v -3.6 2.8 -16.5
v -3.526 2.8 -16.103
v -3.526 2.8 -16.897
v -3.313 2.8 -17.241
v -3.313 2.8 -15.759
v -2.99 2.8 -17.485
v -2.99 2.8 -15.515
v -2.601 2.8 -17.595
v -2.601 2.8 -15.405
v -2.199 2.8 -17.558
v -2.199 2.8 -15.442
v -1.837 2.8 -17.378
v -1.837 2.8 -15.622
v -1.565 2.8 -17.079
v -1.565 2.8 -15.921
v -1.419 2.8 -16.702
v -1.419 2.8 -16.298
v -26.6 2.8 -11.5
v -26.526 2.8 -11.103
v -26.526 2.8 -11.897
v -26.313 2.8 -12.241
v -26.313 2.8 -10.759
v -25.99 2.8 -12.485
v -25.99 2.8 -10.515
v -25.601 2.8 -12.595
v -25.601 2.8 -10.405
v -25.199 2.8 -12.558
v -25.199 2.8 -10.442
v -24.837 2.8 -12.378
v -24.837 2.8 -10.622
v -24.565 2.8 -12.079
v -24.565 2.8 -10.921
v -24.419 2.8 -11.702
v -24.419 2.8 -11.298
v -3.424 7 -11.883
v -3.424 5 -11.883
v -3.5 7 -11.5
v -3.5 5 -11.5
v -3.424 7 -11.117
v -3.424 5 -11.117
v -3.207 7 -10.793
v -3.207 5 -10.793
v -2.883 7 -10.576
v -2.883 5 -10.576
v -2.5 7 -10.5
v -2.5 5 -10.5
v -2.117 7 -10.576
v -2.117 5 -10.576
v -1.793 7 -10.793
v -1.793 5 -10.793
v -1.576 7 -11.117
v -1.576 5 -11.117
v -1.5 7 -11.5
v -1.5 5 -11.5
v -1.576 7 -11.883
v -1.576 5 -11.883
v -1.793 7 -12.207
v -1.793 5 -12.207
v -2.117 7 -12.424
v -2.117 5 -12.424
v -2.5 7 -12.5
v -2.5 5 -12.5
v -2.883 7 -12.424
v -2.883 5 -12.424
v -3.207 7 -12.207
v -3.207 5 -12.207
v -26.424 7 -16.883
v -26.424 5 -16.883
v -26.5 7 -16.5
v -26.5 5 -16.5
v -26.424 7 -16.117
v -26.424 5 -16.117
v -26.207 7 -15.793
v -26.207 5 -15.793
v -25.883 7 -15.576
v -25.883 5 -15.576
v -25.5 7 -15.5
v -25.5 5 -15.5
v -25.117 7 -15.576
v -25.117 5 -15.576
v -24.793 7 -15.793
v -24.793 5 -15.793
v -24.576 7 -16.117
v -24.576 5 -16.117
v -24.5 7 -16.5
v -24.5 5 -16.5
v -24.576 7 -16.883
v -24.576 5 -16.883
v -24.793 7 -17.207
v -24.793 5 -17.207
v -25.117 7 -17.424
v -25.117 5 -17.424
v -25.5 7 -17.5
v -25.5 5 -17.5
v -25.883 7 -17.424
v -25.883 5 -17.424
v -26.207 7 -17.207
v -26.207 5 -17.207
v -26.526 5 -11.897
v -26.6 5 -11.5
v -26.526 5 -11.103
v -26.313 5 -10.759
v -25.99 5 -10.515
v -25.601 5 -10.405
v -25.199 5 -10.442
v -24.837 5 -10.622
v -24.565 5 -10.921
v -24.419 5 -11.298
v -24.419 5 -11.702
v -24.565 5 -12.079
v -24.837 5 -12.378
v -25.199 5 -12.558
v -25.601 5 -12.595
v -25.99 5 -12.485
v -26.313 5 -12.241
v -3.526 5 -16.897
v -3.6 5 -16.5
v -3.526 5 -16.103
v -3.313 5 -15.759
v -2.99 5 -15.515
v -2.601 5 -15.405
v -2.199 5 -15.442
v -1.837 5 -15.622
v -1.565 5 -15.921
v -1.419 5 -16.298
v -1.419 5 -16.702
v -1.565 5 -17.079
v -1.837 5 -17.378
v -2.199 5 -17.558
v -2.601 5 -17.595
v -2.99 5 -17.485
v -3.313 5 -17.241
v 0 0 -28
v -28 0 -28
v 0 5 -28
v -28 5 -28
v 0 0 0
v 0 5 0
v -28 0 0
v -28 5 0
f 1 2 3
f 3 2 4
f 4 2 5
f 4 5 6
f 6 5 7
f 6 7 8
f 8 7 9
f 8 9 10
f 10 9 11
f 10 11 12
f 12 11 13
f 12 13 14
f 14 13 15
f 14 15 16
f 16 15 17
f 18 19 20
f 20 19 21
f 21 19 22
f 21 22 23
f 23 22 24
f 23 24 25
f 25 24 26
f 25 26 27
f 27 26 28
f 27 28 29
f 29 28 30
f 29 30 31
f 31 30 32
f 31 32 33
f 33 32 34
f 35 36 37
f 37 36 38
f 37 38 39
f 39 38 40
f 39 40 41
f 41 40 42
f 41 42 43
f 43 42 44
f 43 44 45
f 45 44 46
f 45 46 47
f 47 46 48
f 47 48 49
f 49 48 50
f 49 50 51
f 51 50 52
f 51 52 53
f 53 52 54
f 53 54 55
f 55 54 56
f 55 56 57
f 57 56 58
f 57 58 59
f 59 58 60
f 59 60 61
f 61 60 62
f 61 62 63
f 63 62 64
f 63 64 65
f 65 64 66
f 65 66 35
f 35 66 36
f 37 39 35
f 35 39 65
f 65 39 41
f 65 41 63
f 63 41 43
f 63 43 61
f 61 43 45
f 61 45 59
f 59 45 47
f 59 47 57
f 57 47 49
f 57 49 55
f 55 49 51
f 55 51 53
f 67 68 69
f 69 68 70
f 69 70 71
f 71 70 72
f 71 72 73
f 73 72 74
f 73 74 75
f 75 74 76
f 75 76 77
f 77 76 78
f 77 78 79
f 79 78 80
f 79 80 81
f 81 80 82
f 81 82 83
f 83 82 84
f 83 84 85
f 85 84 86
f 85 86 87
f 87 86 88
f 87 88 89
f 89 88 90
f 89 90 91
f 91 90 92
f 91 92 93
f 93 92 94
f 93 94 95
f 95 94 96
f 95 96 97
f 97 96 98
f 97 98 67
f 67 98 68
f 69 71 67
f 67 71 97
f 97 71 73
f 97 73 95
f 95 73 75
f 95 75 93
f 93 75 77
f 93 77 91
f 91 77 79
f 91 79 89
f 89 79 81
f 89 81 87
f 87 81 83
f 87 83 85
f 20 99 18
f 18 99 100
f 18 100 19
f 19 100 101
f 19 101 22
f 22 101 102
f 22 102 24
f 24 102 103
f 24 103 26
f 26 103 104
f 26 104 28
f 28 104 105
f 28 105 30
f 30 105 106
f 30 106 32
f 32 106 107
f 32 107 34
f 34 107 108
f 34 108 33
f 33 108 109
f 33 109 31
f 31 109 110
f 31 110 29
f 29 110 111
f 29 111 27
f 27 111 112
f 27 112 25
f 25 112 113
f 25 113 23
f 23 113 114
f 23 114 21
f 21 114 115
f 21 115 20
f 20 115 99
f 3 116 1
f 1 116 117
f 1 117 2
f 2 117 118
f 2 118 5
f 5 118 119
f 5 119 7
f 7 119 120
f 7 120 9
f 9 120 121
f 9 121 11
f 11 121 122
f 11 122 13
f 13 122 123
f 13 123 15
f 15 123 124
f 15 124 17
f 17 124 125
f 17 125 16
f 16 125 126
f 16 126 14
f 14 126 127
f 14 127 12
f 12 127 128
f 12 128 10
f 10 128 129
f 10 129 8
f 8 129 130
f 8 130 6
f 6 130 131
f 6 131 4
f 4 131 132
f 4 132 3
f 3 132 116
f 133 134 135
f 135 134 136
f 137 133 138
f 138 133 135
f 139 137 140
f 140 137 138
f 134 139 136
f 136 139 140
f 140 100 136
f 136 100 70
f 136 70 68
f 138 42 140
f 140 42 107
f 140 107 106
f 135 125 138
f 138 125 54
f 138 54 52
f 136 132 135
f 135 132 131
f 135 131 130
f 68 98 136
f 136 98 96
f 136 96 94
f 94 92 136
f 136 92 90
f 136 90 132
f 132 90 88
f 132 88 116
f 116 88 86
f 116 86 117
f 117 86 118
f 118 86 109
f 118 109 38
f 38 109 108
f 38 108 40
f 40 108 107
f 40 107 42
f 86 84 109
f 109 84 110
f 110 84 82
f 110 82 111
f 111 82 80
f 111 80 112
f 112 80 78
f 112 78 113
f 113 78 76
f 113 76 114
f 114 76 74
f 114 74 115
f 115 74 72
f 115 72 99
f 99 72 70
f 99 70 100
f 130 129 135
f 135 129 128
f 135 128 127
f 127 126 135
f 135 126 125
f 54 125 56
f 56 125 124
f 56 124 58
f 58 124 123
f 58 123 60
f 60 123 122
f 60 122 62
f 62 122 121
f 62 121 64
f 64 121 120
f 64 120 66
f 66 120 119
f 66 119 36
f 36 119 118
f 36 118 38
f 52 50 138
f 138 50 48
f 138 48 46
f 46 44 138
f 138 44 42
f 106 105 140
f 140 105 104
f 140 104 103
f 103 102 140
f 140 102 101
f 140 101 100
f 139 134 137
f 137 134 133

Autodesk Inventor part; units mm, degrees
ref_plane "YZ Plane" through (0, 0, 0) normal (1, 0, 0) x (0, 1, 0)
ref_plane "XZ Plane" through (0, 0, 0) normal (0, 1, 0) x (-1, 0, 0)
ref_plane "XY Plane" through (0, 0, 0) normal (0, 0, 1) x (1, 0, 0)
sketch "Sketch1" plane through (0, 0, 0) normal (0, 1, 0) x (-1, 0, 0)
  line L0 (0, -28) -> (28, -28)
  line L1 (28, 0) -> (0, 0)
  line L2 (0, 0) -> (28, 0) construction
  line L3 (0, -5) -> (0, -23)
  line L4 (28, -9) -> (28, -14)
  line L5 (23, -12) -> (23, -9)
  line L6 (23, -9) -> (28, -9)
  line L7 (28, -19) -> (28, -14)
  line L8 (23, -14) -> (23, -19)
  line L9 (23, -19) -> (28, -19)
  line L10 (28, -3) -> (28, -23)
  line L11 (28, -19) -> (28, -14)
  line L12 (28, -14) -> (28, -9)
  line L13 (28, -9) -> (28, -14)
  line L14 (28, -14) -> (28, -19)
  line L15 (28, -23) -> (28, -28)
  line L16 (28, -3) -> (28, 0)
  line L17 (14, -28) -> (14, 0)
  line L18 (0, -3) -> (0, -23)
  line L19 (0, -19) -> (0, -14)
  line L20 (5, -14) -> (5, -19)
  line L21 (5, -19) -> (0, -19)
  line L22 (0, -9) -> (0, -14)
  line L23 (5, -12) -> (5, -9)
  line L24 (5, -9) -> (0, -9)
  line L25 (0, -19) -> (0, -14)
  line L26 (0, -14) -> (0, -9)
  line L27 (0, -9) -> (0, -14)
  line L28 (0, -14) -> (0, -19)
  circle A0 centre (2.5, -16.5) radius 1.1
  circle A1 centre (2.5, -11.5) radius 1
  line L29 (0, -23) -> (0, -28)
  line L30 (0, 0) -> (0, -28)
  line L31 (25.5, -16.5) -> (28, -16.5)
  line L32 (25.5, -11.5) -> (28, -11.5)
  circle A2 centre (25.5, -16.5) radius 1
  circle A3 centre (25.5, -11.5) radius 1.1
  point P0 (25.5, -19)
  point P1 (25.5, -9)
  point P2 (23, -28)
  point P3 (23, 0)
  point P4 (23, -28)
  point P5 (23, 0)
  point P6 (2.5, -19)
  point P7 (2.5, -9)
  point P8 (28, -9)
  point P9 (0, -9)
  point P10 (28, -19)
  dimension "d18" = 5
  dimension "d20" = 2.5
  dimension "d22" = 2.5
  dimension "d25" = 2
  dimension "d26" = 2.2
  dimension "d27" = 2.2
  dimension "d28" = 28
  dimension "d29" = 28
  dimension "d36" = 28
extrude "Extrusion4" add sketch "Sketch1" along normal blind 5
extrude "Extrusion5" add sketch "Sketch1" along normal blind 7 contours A2 | A1
extrude "Extrusion6" add sketch "Sketch1" along normal blind 2.8 contours A3 | A0
properties part number "SupportoSopra"
